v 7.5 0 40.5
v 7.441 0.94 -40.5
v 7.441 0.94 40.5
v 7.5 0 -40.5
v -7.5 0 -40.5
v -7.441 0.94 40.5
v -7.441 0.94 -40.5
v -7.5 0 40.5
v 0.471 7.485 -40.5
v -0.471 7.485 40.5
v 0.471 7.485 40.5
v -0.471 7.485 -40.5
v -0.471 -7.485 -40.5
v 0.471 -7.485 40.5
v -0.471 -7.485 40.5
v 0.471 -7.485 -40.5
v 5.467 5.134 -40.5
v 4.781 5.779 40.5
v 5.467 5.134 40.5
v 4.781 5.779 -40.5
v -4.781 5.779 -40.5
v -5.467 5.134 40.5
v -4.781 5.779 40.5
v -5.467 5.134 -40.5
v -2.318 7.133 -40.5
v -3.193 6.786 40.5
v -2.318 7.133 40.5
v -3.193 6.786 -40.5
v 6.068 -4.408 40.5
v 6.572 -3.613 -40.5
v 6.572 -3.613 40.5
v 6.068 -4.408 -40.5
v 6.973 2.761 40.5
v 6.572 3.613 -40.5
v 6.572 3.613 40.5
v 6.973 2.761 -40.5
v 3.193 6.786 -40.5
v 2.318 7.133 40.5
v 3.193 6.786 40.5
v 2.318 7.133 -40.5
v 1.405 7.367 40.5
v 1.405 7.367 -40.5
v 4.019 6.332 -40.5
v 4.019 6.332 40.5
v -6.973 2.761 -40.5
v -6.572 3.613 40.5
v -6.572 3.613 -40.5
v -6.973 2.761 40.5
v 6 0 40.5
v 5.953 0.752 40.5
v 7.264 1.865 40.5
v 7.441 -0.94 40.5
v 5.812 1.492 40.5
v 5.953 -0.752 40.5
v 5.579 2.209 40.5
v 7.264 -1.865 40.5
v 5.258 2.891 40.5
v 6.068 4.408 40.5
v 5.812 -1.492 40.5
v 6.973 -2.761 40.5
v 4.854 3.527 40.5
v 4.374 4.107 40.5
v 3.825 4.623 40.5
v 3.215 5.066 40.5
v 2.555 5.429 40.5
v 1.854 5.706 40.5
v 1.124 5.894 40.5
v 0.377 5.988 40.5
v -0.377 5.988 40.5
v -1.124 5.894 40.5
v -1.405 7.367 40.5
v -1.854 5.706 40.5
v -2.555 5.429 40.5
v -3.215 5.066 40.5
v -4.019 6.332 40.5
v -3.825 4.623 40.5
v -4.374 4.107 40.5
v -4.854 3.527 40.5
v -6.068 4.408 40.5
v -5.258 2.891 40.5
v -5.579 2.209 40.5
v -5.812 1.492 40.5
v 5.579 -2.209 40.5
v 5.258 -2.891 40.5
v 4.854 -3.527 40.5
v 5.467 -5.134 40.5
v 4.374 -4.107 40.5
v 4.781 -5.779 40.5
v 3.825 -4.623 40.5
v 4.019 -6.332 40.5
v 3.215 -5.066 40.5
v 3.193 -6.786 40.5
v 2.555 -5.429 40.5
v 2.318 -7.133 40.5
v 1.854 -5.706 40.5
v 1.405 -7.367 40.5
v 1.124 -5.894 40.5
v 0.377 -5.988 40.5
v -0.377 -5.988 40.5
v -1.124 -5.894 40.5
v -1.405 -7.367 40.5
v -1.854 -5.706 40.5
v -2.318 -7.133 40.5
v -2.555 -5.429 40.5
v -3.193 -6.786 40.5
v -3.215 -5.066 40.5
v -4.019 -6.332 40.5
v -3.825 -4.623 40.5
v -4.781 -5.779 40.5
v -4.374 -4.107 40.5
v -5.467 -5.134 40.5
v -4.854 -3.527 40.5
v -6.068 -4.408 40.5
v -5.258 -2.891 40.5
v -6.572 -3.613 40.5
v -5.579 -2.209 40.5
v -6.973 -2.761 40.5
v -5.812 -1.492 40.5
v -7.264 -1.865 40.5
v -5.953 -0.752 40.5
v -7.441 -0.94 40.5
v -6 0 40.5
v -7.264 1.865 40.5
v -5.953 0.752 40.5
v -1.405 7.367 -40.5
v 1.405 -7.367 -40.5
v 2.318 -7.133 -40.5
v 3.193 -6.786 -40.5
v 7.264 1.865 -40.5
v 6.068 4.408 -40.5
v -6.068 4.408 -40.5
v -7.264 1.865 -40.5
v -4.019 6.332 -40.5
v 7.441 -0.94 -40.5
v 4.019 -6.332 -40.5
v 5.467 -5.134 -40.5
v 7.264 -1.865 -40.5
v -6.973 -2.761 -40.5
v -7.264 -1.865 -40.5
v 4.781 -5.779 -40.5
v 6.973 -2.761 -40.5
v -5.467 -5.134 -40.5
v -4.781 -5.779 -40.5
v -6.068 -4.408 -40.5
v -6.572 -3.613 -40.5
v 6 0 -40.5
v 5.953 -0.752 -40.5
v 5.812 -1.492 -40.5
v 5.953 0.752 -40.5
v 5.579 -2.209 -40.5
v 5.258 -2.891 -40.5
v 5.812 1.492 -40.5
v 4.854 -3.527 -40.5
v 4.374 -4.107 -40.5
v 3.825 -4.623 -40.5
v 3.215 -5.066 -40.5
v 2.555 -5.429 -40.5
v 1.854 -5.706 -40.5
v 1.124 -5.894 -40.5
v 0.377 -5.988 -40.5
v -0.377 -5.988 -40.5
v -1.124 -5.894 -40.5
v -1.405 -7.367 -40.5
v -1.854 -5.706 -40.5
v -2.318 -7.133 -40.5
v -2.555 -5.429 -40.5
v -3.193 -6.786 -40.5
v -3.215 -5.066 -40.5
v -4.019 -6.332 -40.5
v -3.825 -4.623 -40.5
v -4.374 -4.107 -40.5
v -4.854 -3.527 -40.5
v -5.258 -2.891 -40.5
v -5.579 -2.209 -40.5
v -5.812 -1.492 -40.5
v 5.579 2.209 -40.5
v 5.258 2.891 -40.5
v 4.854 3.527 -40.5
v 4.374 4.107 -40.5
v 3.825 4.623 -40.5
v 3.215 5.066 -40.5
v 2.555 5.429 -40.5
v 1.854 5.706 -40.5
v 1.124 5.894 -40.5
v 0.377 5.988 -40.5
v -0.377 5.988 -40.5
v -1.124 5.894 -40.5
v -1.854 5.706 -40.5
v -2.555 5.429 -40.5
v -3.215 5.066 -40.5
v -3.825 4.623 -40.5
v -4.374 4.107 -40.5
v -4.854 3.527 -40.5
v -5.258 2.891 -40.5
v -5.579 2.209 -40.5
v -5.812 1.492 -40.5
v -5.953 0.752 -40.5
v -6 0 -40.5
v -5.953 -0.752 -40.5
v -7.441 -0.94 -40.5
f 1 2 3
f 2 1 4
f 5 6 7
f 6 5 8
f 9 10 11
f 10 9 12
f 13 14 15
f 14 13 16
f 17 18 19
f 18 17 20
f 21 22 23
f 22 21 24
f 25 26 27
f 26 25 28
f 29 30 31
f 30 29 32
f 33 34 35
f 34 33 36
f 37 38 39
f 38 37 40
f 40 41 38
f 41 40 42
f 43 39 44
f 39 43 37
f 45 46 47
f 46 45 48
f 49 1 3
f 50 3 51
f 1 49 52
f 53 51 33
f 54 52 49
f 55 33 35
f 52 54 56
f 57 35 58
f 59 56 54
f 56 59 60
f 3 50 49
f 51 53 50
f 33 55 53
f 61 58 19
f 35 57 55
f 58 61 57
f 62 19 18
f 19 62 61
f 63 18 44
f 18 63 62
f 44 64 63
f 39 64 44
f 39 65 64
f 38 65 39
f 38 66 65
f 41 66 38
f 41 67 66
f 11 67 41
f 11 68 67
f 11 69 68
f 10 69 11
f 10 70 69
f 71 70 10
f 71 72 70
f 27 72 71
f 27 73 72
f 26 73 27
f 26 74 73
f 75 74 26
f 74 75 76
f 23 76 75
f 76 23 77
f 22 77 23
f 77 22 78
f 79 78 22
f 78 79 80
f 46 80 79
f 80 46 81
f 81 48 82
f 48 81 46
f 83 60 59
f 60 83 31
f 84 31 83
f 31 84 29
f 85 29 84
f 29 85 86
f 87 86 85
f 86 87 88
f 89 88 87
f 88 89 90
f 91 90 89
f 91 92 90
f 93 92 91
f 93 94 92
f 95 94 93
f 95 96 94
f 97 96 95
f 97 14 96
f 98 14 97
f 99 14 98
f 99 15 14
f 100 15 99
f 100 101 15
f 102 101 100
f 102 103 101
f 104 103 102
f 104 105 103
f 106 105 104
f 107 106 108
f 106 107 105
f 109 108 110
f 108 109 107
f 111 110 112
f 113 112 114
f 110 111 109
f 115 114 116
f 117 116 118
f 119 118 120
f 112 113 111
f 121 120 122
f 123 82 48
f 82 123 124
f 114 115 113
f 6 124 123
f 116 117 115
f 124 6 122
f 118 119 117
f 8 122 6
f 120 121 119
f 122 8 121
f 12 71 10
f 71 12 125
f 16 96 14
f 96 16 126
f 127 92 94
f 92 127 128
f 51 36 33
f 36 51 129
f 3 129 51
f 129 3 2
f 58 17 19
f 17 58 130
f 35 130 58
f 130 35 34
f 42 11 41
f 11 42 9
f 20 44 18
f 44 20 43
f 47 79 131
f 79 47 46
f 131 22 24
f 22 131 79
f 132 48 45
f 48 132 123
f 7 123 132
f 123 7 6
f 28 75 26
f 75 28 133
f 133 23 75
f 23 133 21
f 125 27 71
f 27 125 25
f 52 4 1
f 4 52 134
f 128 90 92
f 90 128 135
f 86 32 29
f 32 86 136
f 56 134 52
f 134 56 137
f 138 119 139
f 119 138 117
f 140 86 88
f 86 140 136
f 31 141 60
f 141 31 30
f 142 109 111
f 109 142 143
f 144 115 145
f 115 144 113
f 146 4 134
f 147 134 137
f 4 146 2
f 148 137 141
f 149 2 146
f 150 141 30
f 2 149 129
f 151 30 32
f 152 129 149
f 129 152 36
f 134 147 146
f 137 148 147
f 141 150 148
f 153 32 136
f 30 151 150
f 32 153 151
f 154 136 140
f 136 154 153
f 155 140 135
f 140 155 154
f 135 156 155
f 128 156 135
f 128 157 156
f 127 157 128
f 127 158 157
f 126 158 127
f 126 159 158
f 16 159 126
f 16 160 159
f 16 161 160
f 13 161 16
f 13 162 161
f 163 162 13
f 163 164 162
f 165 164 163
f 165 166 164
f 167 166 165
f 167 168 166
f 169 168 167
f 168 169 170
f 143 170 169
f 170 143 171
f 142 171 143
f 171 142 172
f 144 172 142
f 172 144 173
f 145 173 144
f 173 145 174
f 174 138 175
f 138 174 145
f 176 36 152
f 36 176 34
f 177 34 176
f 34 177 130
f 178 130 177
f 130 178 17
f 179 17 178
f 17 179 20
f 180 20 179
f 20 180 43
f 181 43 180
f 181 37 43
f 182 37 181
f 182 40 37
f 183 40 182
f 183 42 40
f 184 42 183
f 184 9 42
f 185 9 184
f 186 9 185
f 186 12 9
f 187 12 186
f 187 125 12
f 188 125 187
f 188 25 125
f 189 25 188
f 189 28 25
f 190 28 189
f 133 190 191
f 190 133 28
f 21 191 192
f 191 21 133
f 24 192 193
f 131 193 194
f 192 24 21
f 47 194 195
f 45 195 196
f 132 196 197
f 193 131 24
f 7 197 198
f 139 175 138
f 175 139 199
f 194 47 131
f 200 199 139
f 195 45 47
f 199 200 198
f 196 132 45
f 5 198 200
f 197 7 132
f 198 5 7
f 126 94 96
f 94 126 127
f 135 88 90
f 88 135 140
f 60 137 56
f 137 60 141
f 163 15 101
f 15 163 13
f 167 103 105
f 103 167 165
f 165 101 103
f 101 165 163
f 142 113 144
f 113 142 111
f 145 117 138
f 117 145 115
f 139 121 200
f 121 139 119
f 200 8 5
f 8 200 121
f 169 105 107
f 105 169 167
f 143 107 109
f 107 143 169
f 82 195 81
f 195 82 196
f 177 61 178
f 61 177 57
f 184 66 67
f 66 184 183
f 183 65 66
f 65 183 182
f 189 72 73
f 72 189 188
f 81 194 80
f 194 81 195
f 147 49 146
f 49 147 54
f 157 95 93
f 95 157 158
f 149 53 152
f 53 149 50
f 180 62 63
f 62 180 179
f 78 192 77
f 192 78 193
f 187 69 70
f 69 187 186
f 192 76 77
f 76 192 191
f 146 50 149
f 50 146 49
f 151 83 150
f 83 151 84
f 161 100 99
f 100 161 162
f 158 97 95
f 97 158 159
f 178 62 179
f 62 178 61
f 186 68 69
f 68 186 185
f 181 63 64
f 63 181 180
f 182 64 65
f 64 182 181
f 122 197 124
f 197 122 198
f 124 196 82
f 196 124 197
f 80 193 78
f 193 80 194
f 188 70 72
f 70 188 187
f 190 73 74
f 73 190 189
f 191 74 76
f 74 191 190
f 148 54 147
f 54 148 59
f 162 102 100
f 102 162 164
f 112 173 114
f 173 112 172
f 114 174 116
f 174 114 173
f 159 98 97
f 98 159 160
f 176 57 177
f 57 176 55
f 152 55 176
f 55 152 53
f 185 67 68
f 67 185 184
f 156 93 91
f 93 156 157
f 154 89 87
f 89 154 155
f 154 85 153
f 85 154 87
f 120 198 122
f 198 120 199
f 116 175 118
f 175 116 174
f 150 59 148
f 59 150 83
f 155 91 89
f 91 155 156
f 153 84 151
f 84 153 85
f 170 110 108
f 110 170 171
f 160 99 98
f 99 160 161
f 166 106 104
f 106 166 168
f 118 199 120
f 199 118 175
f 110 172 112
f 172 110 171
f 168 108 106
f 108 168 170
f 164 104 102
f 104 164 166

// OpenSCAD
$fn = 50;


difference() {
	union() {
		translate(v = [0, 0, -40.5000000000]) {
			cylinder(h = 81, r = 7.5000000000);
		}
	}
	union() {
		translate(v = [0, 0, -100.0000000000]) {
			cylinder(h = 200, r = 6);
		}
	}
}
